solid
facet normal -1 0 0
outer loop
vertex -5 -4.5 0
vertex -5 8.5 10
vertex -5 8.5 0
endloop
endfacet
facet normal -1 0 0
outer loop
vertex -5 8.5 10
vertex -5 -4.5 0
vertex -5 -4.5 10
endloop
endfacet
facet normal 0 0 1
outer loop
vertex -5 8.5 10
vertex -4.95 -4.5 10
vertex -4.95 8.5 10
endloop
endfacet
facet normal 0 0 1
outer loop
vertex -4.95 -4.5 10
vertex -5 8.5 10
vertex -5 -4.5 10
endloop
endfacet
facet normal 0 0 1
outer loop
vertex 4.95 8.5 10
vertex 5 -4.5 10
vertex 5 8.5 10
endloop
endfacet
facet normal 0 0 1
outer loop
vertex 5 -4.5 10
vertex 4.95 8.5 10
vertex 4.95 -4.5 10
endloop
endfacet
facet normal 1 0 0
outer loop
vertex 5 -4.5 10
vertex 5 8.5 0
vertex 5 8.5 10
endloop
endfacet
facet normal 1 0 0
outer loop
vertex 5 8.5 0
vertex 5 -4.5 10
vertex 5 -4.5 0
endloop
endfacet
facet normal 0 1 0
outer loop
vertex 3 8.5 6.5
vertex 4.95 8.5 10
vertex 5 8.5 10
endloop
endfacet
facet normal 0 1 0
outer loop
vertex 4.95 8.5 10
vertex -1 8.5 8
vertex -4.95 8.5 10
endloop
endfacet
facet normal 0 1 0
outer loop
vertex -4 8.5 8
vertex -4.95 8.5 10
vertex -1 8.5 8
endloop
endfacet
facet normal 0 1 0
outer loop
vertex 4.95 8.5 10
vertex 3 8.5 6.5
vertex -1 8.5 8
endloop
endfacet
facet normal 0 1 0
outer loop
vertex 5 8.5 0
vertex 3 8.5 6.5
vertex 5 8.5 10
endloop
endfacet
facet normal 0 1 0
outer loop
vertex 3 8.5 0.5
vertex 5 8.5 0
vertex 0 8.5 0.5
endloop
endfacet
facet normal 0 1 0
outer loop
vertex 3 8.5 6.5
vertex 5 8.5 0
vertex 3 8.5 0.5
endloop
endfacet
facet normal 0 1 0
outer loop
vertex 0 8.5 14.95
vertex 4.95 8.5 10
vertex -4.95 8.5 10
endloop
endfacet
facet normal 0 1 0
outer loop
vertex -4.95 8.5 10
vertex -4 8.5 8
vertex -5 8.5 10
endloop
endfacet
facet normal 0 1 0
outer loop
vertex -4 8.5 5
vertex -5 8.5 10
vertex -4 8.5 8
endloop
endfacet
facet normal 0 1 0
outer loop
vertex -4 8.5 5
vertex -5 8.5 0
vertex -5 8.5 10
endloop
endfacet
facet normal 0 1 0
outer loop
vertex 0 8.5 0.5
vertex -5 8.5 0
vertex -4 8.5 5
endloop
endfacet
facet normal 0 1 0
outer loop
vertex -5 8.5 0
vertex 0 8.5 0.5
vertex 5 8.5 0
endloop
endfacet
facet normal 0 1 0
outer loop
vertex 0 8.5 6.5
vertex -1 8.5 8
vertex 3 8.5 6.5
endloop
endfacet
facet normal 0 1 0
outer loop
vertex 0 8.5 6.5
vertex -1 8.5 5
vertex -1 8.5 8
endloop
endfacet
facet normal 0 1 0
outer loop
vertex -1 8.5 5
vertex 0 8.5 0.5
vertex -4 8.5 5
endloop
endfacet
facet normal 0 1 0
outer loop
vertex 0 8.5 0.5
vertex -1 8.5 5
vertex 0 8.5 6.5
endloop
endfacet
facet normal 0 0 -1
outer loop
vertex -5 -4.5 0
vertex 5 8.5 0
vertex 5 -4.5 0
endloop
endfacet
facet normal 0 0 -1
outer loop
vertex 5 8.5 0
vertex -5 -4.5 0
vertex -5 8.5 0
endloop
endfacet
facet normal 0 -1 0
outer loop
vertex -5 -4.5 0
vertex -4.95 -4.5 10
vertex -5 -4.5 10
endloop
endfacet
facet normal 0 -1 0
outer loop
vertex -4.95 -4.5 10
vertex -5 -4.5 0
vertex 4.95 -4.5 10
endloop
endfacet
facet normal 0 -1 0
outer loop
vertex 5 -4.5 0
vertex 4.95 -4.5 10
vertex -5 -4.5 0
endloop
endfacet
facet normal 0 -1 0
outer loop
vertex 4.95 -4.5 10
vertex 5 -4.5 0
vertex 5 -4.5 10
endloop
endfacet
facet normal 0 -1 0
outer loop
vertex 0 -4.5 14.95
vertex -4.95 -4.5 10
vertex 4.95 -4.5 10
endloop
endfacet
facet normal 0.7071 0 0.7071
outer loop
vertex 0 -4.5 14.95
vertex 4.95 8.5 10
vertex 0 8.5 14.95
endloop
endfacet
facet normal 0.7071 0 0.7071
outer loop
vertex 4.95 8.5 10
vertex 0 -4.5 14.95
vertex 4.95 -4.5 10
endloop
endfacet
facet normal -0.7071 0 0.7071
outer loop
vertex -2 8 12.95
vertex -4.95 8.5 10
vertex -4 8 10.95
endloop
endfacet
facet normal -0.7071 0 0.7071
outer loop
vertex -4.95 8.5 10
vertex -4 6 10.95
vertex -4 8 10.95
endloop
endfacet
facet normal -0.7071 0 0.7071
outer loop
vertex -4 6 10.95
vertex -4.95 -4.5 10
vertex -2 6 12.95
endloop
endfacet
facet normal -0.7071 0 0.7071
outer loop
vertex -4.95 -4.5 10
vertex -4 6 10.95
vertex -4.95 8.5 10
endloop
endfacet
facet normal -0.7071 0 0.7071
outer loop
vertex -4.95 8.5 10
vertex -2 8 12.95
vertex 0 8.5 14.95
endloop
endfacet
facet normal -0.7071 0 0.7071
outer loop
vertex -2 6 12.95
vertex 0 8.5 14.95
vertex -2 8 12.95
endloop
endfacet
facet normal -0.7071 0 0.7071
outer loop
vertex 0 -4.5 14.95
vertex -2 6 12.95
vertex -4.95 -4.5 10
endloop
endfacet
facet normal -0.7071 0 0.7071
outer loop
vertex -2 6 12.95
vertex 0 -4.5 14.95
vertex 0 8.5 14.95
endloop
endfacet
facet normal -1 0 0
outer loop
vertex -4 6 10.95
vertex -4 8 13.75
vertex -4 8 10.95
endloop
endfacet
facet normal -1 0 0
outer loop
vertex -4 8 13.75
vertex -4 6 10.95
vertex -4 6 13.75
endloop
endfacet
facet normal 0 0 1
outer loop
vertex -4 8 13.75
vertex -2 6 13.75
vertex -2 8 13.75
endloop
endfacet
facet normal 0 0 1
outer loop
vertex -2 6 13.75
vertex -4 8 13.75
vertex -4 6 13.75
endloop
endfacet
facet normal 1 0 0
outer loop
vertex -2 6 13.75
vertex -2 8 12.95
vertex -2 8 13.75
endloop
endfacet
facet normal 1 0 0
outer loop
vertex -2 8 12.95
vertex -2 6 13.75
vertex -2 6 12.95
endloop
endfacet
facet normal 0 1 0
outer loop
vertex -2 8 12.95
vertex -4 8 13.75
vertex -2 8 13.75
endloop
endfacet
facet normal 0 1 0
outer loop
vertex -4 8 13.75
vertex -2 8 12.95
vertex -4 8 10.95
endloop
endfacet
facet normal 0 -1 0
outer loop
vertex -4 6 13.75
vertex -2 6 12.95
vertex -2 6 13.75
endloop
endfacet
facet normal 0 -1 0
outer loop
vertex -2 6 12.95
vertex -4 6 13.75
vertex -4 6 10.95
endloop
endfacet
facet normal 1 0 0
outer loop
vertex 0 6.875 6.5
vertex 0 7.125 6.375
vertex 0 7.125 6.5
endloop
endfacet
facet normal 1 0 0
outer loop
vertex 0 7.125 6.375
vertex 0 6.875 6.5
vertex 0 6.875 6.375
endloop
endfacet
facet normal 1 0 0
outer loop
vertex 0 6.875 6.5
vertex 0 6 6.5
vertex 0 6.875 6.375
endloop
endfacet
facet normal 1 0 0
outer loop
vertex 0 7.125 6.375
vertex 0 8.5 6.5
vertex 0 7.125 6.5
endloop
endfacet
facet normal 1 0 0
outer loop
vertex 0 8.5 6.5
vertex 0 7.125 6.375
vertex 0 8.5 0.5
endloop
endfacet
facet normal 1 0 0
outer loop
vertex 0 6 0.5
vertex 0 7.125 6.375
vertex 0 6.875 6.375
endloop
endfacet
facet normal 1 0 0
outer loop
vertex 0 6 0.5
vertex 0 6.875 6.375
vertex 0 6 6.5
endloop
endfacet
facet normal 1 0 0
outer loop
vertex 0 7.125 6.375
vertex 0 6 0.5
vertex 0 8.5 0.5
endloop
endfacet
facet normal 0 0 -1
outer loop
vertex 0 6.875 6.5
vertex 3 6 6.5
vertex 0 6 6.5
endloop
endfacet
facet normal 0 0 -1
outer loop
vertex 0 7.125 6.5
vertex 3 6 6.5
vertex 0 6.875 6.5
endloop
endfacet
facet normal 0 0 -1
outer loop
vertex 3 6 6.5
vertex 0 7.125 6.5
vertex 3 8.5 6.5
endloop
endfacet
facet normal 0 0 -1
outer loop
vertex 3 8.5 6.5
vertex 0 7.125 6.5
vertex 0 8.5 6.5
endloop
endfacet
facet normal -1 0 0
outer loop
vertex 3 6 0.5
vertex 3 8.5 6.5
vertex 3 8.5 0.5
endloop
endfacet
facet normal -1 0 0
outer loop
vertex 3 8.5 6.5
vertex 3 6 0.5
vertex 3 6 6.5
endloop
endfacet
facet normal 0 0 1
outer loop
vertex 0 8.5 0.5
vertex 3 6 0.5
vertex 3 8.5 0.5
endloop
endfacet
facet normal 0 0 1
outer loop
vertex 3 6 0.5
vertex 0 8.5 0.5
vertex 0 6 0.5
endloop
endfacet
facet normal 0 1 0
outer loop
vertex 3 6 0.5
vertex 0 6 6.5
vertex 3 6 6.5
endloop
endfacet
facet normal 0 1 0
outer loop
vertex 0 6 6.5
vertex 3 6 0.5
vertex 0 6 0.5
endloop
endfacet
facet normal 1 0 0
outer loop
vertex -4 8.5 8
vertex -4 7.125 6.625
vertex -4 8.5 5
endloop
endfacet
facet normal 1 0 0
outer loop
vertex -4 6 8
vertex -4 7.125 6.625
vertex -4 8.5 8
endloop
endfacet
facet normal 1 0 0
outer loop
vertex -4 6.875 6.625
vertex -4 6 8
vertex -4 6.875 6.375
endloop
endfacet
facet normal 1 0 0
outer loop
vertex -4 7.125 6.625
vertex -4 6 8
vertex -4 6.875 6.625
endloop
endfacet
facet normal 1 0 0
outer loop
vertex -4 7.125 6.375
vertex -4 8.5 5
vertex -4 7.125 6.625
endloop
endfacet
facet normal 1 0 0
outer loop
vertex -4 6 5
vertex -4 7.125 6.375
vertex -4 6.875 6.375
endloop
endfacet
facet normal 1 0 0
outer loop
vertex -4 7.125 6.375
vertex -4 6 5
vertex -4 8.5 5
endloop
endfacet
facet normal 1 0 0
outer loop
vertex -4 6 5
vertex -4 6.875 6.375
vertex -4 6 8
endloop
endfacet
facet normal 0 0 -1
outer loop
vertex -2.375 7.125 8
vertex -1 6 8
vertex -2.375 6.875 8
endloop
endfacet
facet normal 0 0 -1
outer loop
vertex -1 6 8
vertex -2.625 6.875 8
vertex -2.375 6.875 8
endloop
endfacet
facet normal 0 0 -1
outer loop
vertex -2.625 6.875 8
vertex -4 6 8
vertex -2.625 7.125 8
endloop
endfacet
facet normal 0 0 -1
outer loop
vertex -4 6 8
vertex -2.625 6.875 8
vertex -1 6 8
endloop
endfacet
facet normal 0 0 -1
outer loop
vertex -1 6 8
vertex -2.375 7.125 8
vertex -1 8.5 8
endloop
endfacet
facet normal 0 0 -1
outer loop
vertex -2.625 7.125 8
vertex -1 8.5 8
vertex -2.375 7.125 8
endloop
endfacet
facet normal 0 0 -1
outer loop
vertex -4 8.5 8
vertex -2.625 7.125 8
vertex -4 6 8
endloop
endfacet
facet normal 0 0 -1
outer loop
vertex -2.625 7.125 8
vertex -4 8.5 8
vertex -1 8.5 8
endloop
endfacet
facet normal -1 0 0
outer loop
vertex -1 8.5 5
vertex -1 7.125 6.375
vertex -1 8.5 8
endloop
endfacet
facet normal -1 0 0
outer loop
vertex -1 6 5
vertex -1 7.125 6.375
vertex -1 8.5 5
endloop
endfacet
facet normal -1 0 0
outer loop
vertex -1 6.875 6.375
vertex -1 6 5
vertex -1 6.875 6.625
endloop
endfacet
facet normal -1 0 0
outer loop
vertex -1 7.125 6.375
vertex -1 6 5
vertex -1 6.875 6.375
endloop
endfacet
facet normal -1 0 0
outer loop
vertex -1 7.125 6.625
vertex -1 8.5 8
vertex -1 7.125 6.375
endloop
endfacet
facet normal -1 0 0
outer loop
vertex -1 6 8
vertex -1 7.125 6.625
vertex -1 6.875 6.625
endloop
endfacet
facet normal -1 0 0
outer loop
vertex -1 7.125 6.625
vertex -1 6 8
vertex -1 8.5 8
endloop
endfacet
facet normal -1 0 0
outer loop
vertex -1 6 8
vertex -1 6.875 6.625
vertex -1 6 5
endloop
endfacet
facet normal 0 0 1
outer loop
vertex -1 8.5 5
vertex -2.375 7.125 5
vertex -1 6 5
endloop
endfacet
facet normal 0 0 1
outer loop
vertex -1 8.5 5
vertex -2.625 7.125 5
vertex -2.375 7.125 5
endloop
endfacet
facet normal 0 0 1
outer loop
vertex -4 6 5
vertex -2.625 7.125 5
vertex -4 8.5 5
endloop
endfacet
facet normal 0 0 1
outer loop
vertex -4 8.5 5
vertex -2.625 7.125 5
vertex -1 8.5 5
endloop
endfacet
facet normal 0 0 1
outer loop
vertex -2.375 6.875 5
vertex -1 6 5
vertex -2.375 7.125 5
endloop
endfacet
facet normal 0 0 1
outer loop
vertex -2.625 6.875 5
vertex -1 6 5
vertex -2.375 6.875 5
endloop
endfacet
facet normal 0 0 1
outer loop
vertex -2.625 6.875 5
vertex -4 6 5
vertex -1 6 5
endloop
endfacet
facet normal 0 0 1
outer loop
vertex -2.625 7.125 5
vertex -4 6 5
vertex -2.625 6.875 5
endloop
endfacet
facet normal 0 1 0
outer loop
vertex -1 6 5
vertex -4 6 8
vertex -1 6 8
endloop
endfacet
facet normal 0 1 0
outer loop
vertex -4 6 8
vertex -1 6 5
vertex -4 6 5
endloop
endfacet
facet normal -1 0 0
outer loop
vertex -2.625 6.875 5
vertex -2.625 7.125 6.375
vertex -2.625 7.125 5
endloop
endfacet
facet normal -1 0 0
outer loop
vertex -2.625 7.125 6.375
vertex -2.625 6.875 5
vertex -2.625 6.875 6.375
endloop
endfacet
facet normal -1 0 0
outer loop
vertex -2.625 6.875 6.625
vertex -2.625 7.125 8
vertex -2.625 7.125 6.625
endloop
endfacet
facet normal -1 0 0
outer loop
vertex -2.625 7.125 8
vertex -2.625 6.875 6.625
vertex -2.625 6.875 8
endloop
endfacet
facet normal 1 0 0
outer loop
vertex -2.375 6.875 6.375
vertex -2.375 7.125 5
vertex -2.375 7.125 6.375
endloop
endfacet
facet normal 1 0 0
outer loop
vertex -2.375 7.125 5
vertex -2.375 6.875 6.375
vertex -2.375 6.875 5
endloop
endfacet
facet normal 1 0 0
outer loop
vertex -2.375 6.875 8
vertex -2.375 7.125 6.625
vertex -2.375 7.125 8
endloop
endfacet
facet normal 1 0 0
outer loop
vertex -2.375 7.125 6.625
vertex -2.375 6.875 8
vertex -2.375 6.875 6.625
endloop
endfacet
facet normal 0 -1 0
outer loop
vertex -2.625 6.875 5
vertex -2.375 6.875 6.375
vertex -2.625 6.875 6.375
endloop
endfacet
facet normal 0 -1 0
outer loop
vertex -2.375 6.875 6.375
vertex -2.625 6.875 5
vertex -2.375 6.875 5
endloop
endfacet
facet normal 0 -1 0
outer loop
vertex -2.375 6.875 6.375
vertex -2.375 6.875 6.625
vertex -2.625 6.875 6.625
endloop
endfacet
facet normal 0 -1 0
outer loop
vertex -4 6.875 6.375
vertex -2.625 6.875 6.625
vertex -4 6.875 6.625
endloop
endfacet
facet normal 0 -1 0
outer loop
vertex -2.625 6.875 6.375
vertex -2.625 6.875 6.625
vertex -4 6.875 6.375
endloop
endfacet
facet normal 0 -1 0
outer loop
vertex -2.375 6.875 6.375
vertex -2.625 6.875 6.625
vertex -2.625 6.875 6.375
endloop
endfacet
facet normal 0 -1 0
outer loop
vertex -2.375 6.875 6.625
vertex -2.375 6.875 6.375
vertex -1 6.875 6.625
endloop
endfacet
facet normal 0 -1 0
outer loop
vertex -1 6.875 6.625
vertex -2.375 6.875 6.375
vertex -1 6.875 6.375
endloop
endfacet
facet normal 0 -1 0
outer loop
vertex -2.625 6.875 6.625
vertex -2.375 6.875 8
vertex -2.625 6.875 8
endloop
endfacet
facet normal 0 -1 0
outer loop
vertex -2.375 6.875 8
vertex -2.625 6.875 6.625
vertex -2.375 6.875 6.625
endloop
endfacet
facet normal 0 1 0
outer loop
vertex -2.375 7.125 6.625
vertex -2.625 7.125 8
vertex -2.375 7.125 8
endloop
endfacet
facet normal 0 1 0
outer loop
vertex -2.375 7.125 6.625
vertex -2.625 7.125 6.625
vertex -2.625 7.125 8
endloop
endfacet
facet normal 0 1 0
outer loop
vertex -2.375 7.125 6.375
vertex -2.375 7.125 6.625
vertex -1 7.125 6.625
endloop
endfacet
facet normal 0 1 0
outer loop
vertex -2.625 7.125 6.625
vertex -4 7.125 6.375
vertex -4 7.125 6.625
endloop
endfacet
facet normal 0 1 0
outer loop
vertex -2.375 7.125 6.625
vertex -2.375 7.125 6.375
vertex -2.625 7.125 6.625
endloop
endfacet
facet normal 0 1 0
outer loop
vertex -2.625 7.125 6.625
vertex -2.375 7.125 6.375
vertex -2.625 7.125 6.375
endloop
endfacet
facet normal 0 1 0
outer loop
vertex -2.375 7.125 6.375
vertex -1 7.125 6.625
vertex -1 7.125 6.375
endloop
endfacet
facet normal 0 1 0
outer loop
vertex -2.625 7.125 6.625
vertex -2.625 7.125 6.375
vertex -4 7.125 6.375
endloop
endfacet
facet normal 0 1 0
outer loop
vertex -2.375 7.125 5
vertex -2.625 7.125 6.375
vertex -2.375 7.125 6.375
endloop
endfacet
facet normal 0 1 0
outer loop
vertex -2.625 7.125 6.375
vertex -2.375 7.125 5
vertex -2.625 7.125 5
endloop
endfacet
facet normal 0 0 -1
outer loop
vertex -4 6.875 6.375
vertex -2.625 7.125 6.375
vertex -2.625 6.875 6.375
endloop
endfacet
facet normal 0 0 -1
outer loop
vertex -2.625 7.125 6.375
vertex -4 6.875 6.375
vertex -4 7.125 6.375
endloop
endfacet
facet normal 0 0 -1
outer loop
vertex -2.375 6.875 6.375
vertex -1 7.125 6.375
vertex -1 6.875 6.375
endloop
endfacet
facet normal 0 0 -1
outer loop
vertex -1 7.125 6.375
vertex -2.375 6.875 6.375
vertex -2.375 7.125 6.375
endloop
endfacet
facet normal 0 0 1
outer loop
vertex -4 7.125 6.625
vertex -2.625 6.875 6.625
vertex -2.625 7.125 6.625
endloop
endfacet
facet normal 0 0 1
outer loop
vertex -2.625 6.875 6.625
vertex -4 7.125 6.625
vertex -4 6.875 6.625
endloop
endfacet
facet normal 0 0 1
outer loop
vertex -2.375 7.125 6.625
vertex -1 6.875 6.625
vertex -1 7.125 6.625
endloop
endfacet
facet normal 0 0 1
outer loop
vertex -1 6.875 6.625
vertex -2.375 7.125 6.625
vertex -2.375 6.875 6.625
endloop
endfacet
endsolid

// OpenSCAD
    difference(){
    translate([0,2,5]){color("orange") cube([10, 13, 10],center=true);
    translate([0,0,5])rotate([0,45,0])color("orange") cube([7, 13, 7],center=true);
   translate([-3,5,7])color("orange") cube([2, 2, 3.5],center=true);
   translate([0,0,5])rotate([0,-45,0])color("orange") cube([7, 13, 7],center=true);
    }
   translate([0,6,0.5])cube([3,4,6]);
   translate([-4,6,5])cube([3,3,3]);}
   translate([-2.5,7,7])color("orange") cube([.25, .25, 5],center=true);
   translate([-2.5,7,6.5])rotate([0,-90,0])color("orange") cube([.25, .25, 5],center=true);
    
    
